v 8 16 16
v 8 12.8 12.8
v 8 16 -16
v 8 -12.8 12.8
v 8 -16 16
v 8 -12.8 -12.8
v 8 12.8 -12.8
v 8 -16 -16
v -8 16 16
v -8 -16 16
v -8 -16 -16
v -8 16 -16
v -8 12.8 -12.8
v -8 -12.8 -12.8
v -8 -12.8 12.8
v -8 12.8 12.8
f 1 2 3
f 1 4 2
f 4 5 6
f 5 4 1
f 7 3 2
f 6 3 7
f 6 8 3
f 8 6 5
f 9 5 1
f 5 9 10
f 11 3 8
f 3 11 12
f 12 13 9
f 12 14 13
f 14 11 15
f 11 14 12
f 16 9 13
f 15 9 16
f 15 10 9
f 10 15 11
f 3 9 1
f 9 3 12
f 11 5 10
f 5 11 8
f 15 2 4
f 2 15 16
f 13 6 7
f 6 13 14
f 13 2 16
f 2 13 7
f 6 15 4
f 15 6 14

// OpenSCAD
size=32; //block=32 //item=8

difference(){
cube([size*0.5,size,size],center=true);
translate([-size*0.375,0,0]){
cube([size*1.25,size*0.8,size*0.8],center=true);
};	//translate
};	//difference
